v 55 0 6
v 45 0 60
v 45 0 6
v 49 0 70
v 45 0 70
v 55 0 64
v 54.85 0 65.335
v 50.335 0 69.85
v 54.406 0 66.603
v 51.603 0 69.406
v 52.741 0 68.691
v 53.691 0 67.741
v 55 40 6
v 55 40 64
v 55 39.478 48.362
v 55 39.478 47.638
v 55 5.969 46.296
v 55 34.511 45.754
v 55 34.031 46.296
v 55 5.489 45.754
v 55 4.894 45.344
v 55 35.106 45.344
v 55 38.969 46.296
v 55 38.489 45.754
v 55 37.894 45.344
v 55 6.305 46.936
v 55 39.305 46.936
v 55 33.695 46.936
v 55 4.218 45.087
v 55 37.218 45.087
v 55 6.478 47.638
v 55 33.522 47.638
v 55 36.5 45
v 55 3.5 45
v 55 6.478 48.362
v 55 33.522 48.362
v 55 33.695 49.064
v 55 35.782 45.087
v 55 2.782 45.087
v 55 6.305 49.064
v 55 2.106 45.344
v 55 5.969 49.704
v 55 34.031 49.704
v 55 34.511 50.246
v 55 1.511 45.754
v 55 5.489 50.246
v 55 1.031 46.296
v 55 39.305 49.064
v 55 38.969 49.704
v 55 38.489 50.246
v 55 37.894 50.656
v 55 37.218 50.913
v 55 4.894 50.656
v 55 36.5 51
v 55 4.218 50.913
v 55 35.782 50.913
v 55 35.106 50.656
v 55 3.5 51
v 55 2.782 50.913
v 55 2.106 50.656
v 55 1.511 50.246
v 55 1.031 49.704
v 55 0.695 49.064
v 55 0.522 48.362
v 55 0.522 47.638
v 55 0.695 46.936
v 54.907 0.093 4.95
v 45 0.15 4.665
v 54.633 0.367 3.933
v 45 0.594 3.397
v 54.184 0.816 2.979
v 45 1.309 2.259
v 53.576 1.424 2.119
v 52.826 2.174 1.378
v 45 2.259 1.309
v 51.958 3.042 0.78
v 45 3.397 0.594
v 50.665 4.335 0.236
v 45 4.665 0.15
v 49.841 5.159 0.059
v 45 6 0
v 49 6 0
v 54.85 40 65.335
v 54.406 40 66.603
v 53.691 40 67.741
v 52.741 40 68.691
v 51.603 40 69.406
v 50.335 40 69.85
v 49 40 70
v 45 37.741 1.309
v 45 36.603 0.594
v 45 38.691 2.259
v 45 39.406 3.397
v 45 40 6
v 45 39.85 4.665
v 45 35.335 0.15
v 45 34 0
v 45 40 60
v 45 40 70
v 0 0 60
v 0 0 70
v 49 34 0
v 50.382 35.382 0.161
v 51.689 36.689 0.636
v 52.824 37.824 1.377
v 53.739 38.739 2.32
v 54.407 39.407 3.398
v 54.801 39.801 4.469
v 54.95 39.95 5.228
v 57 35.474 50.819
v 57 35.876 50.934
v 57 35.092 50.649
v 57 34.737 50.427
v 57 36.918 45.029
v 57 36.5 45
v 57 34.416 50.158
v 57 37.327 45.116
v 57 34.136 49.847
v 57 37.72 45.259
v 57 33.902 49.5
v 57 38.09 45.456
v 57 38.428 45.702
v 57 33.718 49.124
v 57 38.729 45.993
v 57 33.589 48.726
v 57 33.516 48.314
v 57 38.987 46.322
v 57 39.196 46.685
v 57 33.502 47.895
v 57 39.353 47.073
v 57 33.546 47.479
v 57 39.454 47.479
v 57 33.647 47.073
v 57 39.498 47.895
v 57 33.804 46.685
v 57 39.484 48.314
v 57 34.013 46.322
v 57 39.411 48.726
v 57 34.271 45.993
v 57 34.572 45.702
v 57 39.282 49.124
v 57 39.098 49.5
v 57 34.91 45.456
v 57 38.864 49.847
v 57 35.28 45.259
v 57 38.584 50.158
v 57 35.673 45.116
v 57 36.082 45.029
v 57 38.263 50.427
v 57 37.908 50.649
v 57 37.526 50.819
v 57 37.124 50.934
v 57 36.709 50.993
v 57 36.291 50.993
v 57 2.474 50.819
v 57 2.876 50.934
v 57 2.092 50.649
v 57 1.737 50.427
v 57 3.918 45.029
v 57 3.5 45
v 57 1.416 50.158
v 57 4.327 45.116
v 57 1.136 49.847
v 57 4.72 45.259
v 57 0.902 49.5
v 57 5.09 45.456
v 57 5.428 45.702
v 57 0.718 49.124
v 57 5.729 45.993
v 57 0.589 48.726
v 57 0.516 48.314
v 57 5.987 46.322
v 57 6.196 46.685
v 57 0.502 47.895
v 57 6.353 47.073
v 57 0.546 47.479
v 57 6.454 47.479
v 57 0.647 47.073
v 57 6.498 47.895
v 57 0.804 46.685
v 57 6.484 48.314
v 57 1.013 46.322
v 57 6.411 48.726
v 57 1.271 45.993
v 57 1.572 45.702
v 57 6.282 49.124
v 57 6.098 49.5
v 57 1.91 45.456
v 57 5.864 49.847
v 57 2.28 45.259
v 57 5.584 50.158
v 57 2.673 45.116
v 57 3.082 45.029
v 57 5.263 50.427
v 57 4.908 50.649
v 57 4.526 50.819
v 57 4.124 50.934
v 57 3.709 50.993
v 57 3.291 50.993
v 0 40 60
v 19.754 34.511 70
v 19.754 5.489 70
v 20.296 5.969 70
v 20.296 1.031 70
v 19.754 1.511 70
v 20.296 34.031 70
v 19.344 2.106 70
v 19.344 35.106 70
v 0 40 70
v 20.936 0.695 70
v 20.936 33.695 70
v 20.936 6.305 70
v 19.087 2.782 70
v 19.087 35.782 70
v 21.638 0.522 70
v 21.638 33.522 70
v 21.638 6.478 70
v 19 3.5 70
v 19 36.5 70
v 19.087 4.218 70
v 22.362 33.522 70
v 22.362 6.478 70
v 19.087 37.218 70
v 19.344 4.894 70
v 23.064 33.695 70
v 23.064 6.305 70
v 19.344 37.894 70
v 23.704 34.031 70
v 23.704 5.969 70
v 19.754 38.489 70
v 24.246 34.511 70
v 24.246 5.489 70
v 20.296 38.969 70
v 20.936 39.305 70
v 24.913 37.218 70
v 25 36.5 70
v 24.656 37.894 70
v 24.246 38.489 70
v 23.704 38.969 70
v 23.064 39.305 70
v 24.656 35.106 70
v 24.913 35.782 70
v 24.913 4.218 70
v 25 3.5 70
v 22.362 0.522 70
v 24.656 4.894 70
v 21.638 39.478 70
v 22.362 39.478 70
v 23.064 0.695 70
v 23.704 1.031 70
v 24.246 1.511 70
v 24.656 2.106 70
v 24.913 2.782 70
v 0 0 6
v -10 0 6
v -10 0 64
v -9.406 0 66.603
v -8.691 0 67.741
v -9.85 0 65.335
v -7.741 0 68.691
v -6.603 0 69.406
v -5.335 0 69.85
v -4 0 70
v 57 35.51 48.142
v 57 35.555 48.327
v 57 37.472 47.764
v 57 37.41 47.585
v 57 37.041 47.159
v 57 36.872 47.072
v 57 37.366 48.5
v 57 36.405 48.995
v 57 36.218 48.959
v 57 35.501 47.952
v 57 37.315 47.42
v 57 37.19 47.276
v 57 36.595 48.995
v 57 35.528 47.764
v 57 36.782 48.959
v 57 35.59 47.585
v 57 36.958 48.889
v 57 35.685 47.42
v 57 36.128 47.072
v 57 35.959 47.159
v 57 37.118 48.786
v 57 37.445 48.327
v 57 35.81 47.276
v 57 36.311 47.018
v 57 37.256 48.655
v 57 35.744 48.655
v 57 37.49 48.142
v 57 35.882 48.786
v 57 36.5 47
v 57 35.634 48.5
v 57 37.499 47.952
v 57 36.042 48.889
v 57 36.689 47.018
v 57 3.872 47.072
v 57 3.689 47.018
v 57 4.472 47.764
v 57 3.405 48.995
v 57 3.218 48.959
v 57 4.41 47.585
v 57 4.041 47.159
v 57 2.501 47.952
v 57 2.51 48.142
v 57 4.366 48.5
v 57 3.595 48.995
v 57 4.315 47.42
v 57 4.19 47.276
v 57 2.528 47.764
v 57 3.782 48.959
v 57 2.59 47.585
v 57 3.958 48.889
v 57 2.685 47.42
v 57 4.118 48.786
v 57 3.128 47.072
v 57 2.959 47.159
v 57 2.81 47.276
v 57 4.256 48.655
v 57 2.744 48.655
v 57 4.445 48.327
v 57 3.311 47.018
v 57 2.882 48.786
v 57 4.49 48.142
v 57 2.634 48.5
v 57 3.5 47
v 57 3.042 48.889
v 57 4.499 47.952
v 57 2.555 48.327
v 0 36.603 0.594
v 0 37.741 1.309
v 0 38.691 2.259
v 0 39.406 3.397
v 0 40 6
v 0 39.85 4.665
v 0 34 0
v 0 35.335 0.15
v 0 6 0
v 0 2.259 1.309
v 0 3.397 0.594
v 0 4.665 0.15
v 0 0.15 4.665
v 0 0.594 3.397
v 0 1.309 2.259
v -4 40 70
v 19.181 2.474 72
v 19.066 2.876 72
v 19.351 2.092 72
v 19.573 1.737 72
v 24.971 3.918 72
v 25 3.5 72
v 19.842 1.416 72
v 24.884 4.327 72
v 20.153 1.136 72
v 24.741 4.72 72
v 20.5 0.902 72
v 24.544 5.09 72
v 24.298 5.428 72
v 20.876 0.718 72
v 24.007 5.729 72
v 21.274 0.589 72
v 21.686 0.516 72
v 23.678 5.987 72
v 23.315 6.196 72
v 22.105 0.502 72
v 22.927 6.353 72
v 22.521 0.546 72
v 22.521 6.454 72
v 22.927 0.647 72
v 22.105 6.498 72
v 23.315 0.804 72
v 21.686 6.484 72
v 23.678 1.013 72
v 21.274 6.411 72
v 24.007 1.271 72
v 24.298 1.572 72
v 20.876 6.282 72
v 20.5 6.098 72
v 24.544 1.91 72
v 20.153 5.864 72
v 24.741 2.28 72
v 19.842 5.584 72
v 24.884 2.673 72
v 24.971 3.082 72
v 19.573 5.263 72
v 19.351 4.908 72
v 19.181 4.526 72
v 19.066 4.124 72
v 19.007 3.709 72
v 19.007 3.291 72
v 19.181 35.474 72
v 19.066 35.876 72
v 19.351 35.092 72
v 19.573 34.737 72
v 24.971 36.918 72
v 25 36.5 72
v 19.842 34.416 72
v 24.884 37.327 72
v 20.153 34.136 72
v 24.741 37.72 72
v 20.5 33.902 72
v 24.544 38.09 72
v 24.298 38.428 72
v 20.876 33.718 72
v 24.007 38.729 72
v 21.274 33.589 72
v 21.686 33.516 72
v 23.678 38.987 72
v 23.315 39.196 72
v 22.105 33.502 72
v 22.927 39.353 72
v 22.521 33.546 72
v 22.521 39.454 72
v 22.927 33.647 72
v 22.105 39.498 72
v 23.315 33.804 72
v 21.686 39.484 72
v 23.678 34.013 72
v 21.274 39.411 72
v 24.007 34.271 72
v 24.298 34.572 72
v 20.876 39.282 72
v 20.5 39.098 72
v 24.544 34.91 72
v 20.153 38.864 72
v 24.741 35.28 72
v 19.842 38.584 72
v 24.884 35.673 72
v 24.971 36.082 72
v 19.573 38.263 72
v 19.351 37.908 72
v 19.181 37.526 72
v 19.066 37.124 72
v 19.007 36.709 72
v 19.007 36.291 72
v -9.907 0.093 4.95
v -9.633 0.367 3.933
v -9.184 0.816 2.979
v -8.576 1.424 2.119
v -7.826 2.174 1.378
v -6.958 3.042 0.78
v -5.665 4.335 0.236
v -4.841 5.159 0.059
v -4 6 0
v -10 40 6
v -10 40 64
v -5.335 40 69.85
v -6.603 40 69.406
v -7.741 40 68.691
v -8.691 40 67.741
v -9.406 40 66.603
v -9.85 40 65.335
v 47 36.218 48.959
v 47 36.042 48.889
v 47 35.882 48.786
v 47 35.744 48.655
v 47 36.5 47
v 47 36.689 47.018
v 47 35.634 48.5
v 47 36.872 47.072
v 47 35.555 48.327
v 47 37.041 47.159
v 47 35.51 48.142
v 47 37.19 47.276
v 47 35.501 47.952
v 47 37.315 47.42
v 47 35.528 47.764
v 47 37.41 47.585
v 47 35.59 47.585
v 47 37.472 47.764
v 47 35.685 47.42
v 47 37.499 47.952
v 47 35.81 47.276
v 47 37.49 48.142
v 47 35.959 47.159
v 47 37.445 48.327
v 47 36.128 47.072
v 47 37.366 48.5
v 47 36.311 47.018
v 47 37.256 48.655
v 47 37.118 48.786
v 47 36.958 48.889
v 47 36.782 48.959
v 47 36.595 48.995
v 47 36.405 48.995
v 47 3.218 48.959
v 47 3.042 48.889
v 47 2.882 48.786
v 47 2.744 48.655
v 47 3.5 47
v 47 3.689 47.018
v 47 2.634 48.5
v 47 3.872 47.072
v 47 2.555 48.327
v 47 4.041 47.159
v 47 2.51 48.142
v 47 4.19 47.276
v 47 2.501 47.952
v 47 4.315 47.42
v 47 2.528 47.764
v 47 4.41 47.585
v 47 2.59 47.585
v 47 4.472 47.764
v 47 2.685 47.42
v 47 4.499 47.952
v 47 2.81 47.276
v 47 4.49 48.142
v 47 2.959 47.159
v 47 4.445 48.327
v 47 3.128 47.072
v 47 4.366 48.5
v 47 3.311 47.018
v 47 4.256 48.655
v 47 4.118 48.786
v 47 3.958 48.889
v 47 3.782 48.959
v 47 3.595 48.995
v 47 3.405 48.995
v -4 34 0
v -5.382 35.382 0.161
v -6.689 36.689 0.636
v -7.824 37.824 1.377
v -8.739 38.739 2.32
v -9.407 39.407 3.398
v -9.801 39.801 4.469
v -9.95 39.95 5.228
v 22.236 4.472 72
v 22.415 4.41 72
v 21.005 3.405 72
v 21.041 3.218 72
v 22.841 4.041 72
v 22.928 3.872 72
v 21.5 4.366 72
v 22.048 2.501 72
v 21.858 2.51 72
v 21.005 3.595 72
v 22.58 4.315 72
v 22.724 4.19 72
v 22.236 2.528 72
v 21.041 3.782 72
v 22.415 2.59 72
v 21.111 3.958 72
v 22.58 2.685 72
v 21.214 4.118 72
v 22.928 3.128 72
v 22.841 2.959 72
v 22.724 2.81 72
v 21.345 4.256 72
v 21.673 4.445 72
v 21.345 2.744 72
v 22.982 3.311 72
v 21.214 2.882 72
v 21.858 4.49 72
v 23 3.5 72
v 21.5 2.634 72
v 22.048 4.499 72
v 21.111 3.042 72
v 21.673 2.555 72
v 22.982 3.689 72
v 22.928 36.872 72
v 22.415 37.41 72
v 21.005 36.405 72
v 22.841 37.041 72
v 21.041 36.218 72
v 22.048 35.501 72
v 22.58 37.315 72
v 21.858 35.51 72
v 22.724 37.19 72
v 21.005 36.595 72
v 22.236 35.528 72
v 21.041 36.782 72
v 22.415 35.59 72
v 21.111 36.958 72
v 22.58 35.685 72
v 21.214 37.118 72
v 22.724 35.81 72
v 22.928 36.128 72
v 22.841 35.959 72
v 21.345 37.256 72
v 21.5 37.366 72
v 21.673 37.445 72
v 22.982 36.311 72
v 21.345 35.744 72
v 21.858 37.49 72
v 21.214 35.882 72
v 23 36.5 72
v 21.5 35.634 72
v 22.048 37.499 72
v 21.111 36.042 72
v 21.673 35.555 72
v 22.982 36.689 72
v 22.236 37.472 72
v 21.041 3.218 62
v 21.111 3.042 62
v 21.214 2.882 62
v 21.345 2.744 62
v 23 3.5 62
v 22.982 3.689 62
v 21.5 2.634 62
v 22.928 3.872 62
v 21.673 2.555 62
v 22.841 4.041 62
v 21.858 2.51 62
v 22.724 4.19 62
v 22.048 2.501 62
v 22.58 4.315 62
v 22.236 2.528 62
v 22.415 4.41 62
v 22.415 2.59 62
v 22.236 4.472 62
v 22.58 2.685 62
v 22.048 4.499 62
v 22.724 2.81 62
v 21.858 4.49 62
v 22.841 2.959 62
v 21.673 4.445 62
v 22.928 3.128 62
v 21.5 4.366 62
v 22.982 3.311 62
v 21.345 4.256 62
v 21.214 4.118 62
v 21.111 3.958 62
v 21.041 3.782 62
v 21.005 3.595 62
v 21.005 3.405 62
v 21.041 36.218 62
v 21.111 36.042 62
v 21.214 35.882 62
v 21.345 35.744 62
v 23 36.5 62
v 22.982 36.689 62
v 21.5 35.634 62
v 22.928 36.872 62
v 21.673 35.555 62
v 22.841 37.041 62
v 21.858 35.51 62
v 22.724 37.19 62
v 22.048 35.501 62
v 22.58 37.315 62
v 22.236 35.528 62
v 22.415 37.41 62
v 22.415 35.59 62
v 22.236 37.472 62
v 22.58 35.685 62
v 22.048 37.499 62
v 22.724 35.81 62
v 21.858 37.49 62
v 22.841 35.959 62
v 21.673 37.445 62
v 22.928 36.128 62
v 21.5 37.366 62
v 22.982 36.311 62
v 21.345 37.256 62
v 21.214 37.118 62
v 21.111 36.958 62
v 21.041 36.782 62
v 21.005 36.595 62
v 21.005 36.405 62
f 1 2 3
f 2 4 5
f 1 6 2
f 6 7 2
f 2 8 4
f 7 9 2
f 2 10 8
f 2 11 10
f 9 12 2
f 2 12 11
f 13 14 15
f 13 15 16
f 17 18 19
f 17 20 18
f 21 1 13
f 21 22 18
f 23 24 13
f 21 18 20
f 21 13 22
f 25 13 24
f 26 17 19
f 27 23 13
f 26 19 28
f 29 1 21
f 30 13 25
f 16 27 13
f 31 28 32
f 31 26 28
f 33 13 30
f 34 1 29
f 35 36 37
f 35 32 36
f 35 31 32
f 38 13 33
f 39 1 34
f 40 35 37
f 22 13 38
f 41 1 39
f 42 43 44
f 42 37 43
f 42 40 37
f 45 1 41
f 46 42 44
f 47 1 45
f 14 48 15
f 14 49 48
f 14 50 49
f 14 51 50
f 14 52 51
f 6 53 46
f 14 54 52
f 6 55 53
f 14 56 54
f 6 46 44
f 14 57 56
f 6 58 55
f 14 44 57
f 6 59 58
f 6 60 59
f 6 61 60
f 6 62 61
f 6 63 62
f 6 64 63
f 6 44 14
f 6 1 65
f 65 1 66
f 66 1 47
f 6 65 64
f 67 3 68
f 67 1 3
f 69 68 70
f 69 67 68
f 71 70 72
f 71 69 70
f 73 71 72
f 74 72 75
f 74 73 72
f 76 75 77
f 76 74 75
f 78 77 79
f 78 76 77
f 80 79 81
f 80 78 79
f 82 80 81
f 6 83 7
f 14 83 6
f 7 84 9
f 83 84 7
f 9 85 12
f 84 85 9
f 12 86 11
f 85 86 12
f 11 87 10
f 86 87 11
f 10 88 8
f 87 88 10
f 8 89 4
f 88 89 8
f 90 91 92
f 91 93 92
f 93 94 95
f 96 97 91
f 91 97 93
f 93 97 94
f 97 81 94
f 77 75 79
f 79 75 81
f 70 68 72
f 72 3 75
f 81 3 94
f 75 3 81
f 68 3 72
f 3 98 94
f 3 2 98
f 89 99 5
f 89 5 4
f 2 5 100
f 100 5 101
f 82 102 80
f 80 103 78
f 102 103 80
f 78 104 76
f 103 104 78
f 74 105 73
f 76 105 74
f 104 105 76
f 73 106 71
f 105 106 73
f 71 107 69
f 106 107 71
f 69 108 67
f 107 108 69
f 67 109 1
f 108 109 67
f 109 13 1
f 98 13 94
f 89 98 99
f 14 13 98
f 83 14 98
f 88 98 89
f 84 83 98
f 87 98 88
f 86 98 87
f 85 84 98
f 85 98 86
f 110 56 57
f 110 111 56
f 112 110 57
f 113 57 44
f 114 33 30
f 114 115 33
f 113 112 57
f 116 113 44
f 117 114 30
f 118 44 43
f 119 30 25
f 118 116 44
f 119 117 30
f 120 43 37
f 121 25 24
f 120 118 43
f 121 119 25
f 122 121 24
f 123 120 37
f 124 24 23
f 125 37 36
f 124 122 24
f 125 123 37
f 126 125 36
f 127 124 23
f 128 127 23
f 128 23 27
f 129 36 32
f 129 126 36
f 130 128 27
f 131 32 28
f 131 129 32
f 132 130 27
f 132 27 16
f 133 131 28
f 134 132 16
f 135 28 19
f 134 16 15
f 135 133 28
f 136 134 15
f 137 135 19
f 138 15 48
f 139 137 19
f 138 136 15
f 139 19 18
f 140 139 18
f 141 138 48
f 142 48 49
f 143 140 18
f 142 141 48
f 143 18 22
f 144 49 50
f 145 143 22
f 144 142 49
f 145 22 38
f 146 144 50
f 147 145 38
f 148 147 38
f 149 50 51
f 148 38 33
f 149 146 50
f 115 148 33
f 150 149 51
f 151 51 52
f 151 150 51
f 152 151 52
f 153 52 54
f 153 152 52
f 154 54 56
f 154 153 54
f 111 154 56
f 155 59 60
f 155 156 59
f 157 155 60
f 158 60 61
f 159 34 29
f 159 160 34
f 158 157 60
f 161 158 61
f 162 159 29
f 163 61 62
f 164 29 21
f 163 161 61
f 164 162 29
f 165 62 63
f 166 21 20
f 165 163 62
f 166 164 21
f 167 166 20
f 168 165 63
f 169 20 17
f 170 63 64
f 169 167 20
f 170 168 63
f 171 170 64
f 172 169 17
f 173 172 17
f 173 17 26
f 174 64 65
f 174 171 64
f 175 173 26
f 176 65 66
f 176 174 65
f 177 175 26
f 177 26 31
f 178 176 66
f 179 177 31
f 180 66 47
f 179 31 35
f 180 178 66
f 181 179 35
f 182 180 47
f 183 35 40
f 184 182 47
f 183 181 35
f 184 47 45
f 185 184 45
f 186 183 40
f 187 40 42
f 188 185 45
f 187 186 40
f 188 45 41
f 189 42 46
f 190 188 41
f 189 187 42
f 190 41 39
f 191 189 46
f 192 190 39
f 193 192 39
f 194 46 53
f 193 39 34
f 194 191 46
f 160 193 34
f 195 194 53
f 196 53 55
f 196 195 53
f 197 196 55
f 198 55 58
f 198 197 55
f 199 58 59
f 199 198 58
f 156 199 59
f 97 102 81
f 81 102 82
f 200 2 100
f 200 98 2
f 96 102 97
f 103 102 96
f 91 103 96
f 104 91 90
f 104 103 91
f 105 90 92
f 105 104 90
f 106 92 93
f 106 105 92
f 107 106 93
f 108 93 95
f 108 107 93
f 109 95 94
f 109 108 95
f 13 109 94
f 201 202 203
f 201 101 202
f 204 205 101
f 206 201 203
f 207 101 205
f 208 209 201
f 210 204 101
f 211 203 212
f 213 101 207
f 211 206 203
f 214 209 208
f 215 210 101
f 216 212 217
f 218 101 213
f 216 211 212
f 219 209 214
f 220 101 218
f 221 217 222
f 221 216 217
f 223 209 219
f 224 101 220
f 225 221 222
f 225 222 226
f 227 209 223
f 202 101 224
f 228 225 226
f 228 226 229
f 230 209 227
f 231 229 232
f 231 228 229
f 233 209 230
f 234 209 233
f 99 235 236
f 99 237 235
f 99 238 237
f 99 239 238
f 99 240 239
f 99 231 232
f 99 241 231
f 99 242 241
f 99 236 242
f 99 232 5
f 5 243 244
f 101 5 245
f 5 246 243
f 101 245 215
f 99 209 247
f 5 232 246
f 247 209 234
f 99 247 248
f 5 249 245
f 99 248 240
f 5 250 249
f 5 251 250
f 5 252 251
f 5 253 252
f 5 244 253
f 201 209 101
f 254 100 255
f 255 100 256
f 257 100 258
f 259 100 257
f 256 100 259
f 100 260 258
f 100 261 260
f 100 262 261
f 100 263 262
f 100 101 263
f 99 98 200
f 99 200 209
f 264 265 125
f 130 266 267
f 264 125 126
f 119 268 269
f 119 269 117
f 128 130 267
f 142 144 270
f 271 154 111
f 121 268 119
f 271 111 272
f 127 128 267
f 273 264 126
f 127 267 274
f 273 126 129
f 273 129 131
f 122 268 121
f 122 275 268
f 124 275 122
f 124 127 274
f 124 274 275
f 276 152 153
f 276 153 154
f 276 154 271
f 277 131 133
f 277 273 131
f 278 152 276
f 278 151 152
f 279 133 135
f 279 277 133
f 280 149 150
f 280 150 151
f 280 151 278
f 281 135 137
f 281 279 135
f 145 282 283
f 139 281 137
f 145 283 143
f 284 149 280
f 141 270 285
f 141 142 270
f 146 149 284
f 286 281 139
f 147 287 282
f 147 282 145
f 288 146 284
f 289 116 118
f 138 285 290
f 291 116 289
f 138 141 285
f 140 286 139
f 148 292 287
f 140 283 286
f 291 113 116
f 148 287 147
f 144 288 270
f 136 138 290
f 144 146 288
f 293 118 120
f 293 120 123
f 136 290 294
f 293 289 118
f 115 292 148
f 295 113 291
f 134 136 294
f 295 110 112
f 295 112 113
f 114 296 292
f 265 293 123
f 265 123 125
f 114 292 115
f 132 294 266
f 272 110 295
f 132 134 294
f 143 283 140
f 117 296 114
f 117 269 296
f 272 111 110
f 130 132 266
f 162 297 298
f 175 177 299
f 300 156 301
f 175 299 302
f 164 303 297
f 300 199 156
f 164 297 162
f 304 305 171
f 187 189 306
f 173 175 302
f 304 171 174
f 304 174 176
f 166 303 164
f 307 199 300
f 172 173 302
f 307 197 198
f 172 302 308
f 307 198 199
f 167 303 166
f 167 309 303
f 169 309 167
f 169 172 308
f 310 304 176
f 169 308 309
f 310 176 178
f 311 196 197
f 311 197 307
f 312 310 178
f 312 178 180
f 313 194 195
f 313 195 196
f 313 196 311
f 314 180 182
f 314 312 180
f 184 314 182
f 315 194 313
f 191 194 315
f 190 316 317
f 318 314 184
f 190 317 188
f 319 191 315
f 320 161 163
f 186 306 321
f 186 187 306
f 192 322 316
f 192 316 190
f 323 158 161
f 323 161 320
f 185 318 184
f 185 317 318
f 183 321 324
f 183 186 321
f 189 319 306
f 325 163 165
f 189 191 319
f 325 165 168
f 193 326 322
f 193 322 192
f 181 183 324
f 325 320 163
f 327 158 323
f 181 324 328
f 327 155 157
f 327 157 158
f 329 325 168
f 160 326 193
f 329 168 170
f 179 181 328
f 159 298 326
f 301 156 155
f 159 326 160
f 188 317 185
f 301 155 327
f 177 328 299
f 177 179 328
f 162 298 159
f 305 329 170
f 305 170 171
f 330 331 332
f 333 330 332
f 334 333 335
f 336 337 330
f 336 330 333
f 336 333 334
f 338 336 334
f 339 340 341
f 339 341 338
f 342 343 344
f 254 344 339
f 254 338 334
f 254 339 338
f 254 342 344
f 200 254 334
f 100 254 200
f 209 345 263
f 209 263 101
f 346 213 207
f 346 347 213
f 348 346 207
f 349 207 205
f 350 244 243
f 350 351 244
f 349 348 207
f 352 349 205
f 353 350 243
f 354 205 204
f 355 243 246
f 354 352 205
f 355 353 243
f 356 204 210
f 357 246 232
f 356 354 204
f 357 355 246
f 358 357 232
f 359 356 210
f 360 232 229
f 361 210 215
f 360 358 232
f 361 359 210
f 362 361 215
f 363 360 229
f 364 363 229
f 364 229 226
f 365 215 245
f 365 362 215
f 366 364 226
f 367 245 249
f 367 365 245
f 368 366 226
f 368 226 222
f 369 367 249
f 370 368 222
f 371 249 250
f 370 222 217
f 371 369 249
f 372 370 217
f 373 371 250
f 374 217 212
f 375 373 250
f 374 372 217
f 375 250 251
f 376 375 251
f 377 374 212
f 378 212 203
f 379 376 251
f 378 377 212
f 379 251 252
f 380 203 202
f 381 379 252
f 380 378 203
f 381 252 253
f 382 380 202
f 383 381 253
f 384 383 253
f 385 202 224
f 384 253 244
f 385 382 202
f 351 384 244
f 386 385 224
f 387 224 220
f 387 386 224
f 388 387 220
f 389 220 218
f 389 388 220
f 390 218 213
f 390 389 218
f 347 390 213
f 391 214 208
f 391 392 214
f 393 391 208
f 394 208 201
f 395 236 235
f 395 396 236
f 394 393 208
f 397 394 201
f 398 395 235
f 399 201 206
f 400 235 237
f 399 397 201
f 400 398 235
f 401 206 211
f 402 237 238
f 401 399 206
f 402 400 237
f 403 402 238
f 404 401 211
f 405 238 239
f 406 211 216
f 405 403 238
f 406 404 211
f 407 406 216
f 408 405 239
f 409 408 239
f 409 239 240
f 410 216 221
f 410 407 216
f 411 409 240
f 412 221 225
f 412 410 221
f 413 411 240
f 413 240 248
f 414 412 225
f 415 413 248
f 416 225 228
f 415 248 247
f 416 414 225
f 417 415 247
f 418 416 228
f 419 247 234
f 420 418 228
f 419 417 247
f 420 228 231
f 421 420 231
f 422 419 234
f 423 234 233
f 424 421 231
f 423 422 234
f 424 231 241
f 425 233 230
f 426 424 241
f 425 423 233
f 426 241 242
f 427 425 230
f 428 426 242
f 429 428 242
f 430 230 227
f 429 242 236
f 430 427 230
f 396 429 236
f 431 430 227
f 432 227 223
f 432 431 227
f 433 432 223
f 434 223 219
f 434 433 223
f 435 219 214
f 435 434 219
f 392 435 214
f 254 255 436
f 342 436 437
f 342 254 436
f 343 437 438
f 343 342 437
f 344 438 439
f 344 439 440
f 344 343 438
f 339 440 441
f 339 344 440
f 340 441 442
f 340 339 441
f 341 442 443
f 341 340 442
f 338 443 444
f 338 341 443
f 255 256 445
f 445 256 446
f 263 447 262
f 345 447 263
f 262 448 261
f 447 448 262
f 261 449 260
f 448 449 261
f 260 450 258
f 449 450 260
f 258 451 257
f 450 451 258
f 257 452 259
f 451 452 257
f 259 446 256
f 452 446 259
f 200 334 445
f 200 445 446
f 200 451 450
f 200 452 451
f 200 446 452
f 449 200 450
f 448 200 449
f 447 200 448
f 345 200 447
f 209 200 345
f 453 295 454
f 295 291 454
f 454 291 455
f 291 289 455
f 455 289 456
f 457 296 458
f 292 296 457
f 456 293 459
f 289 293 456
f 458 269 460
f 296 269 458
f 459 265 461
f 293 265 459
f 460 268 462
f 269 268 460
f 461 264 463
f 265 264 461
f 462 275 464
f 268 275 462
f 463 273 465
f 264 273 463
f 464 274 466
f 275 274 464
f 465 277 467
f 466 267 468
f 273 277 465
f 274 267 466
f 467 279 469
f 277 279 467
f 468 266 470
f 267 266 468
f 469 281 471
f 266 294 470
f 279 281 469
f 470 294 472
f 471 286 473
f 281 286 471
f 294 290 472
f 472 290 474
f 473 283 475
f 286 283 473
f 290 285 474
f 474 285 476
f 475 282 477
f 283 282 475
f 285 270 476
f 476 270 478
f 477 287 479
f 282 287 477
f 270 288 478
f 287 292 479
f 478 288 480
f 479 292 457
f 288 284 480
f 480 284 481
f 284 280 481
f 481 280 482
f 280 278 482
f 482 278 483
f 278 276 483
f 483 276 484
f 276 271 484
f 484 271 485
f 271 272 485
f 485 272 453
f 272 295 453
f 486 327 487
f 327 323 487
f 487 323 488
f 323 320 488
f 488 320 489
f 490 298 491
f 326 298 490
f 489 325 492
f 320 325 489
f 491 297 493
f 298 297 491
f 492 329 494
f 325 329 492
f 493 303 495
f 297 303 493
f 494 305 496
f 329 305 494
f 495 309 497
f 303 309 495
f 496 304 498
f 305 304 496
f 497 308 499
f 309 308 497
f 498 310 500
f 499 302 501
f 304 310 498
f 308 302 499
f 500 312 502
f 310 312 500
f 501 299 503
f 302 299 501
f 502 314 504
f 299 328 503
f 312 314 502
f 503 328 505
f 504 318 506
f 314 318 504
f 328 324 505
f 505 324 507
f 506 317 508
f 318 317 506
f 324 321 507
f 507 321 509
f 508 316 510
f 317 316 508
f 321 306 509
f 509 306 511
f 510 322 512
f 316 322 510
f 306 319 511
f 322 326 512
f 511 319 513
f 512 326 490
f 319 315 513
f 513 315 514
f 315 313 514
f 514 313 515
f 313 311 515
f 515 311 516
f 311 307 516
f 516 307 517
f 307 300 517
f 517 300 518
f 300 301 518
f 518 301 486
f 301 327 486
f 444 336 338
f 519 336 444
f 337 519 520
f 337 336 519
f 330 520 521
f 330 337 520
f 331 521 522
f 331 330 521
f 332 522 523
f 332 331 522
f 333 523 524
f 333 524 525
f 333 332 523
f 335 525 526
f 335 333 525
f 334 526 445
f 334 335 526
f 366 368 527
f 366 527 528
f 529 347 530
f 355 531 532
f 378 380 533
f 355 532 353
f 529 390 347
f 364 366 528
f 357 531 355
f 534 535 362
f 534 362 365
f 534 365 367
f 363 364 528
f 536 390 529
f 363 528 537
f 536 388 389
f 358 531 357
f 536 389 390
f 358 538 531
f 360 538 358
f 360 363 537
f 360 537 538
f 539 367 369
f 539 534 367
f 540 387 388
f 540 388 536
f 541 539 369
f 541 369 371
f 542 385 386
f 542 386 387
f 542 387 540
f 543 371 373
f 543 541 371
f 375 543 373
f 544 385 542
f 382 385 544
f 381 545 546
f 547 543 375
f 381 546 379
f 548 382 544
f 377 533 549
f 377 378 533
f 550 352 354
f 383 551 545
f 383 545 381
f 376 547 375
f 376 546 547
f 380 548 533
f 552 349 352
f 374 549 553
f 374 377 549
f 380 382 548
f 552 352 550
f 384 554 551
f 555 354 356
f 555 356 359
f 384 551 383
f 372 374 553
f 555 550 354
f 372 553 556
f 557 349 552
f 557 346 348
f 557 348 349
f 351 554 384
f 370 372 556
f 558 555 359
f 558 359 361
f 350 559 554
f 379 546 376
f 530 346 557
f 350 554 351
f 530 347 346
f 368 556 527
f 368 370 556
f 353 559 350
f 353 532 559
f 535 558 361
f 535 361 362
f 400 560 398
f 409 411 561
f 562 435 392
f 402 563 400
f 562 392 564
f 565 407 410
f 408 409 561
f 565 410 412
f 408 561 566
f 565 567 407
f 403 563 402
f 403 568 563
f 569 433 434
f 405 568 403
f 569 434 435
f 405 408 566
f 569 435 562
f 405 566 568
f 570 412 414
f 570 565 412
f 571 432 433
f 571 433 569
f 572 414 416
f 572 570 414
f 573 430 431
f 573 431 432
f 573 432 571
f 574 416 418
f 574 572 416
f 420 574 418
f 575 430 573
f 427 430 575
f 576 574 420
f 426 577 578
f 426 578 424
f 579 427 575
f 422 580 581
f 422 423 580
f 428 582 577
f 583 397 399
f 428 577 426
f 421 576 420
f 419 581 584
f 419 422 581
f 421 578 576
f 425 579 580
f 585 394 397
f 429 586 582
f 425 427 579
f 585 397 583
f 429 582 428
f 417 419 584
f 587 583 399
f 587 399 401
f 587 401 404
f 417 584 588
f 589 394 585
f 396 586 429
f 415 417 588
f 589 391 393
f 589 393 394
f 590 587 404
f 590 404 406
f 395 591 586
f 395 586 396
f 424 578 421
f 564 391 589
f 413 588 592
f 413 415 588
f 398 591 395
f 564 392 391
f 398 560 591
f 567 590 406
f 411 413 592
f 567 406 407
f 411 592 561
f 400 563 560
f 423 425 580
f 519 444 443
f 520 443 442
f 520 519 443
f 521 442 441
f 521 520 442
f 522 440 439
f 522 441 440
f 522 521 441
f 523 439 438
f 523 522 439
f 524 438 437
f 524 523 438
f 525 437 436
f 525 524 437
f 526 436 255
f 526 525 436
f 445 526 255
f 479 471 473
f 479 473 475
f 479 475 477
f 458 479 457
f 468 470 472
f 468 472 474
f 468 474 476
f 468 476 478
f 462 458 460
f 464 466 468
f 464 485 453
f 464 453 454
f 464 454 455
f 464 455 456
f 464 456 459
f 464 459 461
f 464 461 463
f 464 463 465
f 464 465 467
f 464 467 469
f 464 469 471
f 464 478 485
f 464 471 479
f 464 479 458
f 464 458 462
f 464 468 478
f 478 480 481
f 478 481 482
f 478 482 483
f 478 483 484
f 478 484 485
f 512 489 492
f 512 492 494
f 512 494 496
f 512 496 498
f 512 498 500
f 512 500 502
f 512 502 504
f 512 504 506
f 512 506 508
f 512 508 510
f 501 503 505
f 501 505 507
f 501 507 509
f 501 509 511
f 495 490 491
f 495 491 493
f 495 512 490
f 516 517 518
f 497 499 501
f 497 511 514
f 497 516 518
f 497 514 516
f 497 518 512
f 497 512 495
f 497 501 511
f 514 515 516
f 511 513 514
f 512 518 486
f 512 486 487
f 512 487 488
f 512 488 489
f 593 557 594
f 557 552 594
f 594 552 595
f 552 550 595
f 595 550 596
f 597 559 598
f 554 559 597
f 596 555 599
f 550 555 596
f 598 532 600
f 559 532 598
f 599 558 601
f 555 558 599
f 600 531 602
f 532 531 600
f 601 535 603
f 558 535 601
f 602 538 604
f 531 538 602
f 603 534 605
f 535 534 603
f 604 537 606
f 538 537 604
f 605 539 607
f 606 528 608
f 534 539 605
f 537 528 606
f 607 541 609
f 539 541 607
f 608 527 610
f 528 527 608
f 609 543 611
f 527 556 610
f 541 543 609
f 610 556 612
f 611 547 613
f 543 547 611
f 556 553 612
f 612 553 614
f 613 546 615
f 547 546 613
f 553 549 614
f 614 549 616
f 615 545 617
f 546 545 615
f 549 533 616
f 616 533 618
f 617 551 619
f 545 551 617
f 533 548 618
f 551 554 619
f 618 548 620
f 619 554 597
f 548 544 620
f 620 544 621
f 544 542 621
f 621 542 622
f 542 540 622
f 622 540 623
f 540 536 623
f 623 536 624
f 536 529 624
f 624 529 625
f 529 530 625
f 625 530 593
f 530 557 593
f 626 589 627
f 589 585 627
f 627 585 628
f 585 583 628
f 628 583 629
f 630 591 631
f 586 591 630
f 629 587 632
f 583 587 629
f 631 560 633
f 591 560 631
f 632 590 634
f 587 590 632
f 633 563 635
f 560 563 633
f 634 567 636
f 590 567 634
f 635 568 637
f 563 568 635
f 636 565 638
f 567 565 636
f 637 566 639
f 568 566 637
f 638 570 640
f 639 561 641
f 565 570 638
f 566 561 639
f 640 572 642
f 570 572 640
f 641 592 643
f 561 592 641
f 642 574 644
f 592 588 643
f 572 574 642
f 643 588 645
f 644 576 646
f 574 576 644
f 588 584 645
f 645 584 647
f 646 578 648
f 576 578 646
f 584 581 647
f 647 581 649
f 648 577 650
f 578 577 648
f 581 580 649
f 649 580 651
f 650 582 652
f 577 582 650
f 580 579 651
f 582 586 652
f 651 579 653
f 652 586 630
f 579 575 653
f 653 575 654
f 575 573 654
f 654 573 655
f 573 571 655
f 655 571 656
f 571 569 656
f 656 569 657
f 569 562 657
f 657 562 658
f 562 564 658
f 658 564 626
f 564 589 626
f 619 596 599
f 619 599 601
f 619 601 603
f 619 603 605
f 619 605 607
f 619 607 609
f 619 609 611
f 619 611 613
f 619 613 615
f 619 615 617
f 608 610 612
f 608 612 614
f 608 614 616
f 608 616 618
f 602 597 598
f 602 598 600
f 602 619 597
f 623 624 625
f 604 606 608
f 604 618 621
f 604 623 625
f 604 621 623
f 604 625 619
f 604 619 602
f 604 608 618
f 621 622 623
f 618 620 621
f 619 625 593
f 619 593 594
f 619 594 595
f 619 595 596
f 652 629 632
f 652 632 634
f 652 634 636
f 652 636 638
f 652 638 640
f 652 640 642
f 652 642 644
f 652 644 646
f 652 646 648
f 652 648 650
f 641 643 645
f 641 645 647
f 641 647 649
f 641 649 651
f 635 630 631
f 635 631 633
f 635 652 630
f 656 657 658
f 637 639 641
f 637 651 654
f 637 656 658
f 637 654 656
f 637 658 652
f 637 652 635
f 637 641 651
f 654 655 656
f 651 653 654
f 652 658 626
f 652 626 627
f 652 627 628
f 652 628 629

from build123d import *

# Parameters (mm, degrees)
CYLINDER013_R     = 1
CYLINDER013_DEPTH = 10
CYLINDER014_R     = 1
CYLINDER014_DEPTH = 10
CYLINDER017_R     = 1
CYLINDER017_DEPTH = 10
CYLINDER011_R     = 1
CYLINDER011_DEPTH = 10
BOX001_W          = 10
BOX001_H          = 40
BOX001_DEPTH      = 70
CYLINDER016_R     = 3
CYLINDER016_DEPTH = 10
CYLINDER015_R     = 3
CYLINDER015_DEPTH = 10
CYLINDER012_R     = 3
CYLINDER012_DEPTH = 10
CYLINDER010_R     = 3
CYLINDER010_DEPTH = 10
BOX_W             = 10
BOX_H             = 40
BOX_DEPTH         = 70
BOX002_W          = 45
BOX002_H          = 40
BOX002_DEPTH      = 10
FILLET_R          = 6


with BuildPart() as foro001:
    # Cylinder013 → Cylinder013 (new body)
    with BuildSketch(Plane(origin=(47, 36.5, 48), x_dir=(0, 0, -1), z_dir=(1, 0, 0))):
        Circle(CYLINDER013_R)
    extrude(amount=CYLINDER013_DEPTH)


with BuildPart() as foro002:
    # Cylinder014 → Cylinder014 (new body)
    with BuildSketch(Plane(origin=(22, 36.5, 62), x_dir=(1, 0, 0), z_dir=(0, 0, 1))):
        Circle(CYLINDER014_R)
    extrude(amount=CYLINDER014_DEPTH)


with BuildPart() as foro003:
    # Cylinder017 → Cylinder017 (new body)
    with BuildSketch(Plane(origin=(22, 3.5, 62), x_dir=(1, 0, 0), z_dir=(0, 0, 1))):
        Circle(CYLINDER017_R)
    extrude(amount=CYLINDER017_DEPTH)


with BuildPart() as foro:
    # Cylinder011 → Cylinder011 (new body)
    with BuildSketch(Plane(origin=(47, 3.5, 48), x_dir=(0, 0, -1), z_dir=(1, 0, 0))):
        Circle(CYLINDER011_R)
    extrude(amount=CYLINDER011_DEPTH)


with BuildPart() as cube001:
    # Box001 → Box001 (new body)
    with BuildSketch(Plane(origin=(45, 0, 0), x_dir=(1, 0, 0), z_dir=(0, 0, 1))):
        with Locations((5, 20)):
            Rectangle(BOX001_W, BOX001_H)
    extrude(amount=BOX001_DEPTH)


with BuildPart() as cylinder016:
    # Cylinder016 → Cylinder016 (new body)
    with BuildSketch(Plane(origin=(22, 3.5, 62), x_dir=(1, 0, 0), z_dir=(0, 0, 1))):
        Circle(CYLINDER016_R)
    extrude(amount=CYLINDER016_DEPTH)


with BuildPart() as cylinder015:
    # Cylinder015 → Cylinder015 (new body)
    with BuildSketch(Plane(origin=(22, 36.5, 62), x_dir=(1, 0, 0), z_dir=(0, 0, 1))):
        Circle(CYLINDER015_R)
    extrude(amount=CYLINDER015_DEPTH)


with BuildPart() as cylinder012:
    # Cylinder012 → Cylinder012 (new body)
    with BuildSketch(Plane(origin=(47, 36.5, 48), x_dir=(0, 0, -1), z_dir=(1, 0, 0))):
        Circle(CYLINDER012_R)
    extrude(amount=CYLINDER012_DEPTH)


with BuildPart() as cylinder010:
    # Cylinder010 → Cylinder010 (new body)
    with BuildSketch(Plane(origin=(47, 3.5, 48), x_dir=(0, 0, -1), z_dir=(1, 0, 0))):
        Circle(CYLINDER010_R)
    extrude(amount=CYLINDER010_DEPTH)


with BuildPart() as cube:
    # Box → Box (new body)
    with BuildSketch(Plane(origin=(-10, 0, 0), x_dir=(1, 0, 0), z_dir=(0, 0, 1))):
        with Locations((5, 20)):
            Rectangle(BOX_W, BOX_H)
    extrude(amount=BOX_DEPTH)


with BuildPart() as fillet_body:
    # Box002 → Box002 (new body)
    with BuildSketch(Plane.XY.offset(60)):
        with Locations((22.5, 20)):
            Rectangle(BOX002_W, BOX002_H)
    extrude(amount=BOX002_DEPTH)

    # Fusion: union Cube001, Cylinder016, Cylinder015, Cylinder012, Cylinder010, Cube
    add(cube001.part)
    add(cylinder016.part)
    add(cylinder015.part)
    add(cylinder012.part)
    add(cylinder010.part)
    add(cube.part)

    # Cut: cut foro
    add(foro.part, mode=Mode.SUBTRACT)

    # Cut001: cut foro003
    add(foro003.part, mode=Mode.SUBTRACT)

    # Cut002: cut foro002
    add(foro002.part, mode=Mode.SUBTRACT)

    # Cut003: cut foro001
    add(foro001.part, mode=Mode.SUBTRACT)

    # Fillet
    fillet_edges = [fillet_body.edges().sort_by_distance(p)[0] for p in [
        (50, 0, 0),
        (-5, 0, 0),
        (50, 40, 0),
        (55, 20, 0),
        (55, 20, 70),
        (-10, 20, 70),
        (-10, 20, 0),
        (-5, 40, 0),
    ]]
    fillet(fillet_edges, radius=FILLET_R)


solid = fillet_body.part
